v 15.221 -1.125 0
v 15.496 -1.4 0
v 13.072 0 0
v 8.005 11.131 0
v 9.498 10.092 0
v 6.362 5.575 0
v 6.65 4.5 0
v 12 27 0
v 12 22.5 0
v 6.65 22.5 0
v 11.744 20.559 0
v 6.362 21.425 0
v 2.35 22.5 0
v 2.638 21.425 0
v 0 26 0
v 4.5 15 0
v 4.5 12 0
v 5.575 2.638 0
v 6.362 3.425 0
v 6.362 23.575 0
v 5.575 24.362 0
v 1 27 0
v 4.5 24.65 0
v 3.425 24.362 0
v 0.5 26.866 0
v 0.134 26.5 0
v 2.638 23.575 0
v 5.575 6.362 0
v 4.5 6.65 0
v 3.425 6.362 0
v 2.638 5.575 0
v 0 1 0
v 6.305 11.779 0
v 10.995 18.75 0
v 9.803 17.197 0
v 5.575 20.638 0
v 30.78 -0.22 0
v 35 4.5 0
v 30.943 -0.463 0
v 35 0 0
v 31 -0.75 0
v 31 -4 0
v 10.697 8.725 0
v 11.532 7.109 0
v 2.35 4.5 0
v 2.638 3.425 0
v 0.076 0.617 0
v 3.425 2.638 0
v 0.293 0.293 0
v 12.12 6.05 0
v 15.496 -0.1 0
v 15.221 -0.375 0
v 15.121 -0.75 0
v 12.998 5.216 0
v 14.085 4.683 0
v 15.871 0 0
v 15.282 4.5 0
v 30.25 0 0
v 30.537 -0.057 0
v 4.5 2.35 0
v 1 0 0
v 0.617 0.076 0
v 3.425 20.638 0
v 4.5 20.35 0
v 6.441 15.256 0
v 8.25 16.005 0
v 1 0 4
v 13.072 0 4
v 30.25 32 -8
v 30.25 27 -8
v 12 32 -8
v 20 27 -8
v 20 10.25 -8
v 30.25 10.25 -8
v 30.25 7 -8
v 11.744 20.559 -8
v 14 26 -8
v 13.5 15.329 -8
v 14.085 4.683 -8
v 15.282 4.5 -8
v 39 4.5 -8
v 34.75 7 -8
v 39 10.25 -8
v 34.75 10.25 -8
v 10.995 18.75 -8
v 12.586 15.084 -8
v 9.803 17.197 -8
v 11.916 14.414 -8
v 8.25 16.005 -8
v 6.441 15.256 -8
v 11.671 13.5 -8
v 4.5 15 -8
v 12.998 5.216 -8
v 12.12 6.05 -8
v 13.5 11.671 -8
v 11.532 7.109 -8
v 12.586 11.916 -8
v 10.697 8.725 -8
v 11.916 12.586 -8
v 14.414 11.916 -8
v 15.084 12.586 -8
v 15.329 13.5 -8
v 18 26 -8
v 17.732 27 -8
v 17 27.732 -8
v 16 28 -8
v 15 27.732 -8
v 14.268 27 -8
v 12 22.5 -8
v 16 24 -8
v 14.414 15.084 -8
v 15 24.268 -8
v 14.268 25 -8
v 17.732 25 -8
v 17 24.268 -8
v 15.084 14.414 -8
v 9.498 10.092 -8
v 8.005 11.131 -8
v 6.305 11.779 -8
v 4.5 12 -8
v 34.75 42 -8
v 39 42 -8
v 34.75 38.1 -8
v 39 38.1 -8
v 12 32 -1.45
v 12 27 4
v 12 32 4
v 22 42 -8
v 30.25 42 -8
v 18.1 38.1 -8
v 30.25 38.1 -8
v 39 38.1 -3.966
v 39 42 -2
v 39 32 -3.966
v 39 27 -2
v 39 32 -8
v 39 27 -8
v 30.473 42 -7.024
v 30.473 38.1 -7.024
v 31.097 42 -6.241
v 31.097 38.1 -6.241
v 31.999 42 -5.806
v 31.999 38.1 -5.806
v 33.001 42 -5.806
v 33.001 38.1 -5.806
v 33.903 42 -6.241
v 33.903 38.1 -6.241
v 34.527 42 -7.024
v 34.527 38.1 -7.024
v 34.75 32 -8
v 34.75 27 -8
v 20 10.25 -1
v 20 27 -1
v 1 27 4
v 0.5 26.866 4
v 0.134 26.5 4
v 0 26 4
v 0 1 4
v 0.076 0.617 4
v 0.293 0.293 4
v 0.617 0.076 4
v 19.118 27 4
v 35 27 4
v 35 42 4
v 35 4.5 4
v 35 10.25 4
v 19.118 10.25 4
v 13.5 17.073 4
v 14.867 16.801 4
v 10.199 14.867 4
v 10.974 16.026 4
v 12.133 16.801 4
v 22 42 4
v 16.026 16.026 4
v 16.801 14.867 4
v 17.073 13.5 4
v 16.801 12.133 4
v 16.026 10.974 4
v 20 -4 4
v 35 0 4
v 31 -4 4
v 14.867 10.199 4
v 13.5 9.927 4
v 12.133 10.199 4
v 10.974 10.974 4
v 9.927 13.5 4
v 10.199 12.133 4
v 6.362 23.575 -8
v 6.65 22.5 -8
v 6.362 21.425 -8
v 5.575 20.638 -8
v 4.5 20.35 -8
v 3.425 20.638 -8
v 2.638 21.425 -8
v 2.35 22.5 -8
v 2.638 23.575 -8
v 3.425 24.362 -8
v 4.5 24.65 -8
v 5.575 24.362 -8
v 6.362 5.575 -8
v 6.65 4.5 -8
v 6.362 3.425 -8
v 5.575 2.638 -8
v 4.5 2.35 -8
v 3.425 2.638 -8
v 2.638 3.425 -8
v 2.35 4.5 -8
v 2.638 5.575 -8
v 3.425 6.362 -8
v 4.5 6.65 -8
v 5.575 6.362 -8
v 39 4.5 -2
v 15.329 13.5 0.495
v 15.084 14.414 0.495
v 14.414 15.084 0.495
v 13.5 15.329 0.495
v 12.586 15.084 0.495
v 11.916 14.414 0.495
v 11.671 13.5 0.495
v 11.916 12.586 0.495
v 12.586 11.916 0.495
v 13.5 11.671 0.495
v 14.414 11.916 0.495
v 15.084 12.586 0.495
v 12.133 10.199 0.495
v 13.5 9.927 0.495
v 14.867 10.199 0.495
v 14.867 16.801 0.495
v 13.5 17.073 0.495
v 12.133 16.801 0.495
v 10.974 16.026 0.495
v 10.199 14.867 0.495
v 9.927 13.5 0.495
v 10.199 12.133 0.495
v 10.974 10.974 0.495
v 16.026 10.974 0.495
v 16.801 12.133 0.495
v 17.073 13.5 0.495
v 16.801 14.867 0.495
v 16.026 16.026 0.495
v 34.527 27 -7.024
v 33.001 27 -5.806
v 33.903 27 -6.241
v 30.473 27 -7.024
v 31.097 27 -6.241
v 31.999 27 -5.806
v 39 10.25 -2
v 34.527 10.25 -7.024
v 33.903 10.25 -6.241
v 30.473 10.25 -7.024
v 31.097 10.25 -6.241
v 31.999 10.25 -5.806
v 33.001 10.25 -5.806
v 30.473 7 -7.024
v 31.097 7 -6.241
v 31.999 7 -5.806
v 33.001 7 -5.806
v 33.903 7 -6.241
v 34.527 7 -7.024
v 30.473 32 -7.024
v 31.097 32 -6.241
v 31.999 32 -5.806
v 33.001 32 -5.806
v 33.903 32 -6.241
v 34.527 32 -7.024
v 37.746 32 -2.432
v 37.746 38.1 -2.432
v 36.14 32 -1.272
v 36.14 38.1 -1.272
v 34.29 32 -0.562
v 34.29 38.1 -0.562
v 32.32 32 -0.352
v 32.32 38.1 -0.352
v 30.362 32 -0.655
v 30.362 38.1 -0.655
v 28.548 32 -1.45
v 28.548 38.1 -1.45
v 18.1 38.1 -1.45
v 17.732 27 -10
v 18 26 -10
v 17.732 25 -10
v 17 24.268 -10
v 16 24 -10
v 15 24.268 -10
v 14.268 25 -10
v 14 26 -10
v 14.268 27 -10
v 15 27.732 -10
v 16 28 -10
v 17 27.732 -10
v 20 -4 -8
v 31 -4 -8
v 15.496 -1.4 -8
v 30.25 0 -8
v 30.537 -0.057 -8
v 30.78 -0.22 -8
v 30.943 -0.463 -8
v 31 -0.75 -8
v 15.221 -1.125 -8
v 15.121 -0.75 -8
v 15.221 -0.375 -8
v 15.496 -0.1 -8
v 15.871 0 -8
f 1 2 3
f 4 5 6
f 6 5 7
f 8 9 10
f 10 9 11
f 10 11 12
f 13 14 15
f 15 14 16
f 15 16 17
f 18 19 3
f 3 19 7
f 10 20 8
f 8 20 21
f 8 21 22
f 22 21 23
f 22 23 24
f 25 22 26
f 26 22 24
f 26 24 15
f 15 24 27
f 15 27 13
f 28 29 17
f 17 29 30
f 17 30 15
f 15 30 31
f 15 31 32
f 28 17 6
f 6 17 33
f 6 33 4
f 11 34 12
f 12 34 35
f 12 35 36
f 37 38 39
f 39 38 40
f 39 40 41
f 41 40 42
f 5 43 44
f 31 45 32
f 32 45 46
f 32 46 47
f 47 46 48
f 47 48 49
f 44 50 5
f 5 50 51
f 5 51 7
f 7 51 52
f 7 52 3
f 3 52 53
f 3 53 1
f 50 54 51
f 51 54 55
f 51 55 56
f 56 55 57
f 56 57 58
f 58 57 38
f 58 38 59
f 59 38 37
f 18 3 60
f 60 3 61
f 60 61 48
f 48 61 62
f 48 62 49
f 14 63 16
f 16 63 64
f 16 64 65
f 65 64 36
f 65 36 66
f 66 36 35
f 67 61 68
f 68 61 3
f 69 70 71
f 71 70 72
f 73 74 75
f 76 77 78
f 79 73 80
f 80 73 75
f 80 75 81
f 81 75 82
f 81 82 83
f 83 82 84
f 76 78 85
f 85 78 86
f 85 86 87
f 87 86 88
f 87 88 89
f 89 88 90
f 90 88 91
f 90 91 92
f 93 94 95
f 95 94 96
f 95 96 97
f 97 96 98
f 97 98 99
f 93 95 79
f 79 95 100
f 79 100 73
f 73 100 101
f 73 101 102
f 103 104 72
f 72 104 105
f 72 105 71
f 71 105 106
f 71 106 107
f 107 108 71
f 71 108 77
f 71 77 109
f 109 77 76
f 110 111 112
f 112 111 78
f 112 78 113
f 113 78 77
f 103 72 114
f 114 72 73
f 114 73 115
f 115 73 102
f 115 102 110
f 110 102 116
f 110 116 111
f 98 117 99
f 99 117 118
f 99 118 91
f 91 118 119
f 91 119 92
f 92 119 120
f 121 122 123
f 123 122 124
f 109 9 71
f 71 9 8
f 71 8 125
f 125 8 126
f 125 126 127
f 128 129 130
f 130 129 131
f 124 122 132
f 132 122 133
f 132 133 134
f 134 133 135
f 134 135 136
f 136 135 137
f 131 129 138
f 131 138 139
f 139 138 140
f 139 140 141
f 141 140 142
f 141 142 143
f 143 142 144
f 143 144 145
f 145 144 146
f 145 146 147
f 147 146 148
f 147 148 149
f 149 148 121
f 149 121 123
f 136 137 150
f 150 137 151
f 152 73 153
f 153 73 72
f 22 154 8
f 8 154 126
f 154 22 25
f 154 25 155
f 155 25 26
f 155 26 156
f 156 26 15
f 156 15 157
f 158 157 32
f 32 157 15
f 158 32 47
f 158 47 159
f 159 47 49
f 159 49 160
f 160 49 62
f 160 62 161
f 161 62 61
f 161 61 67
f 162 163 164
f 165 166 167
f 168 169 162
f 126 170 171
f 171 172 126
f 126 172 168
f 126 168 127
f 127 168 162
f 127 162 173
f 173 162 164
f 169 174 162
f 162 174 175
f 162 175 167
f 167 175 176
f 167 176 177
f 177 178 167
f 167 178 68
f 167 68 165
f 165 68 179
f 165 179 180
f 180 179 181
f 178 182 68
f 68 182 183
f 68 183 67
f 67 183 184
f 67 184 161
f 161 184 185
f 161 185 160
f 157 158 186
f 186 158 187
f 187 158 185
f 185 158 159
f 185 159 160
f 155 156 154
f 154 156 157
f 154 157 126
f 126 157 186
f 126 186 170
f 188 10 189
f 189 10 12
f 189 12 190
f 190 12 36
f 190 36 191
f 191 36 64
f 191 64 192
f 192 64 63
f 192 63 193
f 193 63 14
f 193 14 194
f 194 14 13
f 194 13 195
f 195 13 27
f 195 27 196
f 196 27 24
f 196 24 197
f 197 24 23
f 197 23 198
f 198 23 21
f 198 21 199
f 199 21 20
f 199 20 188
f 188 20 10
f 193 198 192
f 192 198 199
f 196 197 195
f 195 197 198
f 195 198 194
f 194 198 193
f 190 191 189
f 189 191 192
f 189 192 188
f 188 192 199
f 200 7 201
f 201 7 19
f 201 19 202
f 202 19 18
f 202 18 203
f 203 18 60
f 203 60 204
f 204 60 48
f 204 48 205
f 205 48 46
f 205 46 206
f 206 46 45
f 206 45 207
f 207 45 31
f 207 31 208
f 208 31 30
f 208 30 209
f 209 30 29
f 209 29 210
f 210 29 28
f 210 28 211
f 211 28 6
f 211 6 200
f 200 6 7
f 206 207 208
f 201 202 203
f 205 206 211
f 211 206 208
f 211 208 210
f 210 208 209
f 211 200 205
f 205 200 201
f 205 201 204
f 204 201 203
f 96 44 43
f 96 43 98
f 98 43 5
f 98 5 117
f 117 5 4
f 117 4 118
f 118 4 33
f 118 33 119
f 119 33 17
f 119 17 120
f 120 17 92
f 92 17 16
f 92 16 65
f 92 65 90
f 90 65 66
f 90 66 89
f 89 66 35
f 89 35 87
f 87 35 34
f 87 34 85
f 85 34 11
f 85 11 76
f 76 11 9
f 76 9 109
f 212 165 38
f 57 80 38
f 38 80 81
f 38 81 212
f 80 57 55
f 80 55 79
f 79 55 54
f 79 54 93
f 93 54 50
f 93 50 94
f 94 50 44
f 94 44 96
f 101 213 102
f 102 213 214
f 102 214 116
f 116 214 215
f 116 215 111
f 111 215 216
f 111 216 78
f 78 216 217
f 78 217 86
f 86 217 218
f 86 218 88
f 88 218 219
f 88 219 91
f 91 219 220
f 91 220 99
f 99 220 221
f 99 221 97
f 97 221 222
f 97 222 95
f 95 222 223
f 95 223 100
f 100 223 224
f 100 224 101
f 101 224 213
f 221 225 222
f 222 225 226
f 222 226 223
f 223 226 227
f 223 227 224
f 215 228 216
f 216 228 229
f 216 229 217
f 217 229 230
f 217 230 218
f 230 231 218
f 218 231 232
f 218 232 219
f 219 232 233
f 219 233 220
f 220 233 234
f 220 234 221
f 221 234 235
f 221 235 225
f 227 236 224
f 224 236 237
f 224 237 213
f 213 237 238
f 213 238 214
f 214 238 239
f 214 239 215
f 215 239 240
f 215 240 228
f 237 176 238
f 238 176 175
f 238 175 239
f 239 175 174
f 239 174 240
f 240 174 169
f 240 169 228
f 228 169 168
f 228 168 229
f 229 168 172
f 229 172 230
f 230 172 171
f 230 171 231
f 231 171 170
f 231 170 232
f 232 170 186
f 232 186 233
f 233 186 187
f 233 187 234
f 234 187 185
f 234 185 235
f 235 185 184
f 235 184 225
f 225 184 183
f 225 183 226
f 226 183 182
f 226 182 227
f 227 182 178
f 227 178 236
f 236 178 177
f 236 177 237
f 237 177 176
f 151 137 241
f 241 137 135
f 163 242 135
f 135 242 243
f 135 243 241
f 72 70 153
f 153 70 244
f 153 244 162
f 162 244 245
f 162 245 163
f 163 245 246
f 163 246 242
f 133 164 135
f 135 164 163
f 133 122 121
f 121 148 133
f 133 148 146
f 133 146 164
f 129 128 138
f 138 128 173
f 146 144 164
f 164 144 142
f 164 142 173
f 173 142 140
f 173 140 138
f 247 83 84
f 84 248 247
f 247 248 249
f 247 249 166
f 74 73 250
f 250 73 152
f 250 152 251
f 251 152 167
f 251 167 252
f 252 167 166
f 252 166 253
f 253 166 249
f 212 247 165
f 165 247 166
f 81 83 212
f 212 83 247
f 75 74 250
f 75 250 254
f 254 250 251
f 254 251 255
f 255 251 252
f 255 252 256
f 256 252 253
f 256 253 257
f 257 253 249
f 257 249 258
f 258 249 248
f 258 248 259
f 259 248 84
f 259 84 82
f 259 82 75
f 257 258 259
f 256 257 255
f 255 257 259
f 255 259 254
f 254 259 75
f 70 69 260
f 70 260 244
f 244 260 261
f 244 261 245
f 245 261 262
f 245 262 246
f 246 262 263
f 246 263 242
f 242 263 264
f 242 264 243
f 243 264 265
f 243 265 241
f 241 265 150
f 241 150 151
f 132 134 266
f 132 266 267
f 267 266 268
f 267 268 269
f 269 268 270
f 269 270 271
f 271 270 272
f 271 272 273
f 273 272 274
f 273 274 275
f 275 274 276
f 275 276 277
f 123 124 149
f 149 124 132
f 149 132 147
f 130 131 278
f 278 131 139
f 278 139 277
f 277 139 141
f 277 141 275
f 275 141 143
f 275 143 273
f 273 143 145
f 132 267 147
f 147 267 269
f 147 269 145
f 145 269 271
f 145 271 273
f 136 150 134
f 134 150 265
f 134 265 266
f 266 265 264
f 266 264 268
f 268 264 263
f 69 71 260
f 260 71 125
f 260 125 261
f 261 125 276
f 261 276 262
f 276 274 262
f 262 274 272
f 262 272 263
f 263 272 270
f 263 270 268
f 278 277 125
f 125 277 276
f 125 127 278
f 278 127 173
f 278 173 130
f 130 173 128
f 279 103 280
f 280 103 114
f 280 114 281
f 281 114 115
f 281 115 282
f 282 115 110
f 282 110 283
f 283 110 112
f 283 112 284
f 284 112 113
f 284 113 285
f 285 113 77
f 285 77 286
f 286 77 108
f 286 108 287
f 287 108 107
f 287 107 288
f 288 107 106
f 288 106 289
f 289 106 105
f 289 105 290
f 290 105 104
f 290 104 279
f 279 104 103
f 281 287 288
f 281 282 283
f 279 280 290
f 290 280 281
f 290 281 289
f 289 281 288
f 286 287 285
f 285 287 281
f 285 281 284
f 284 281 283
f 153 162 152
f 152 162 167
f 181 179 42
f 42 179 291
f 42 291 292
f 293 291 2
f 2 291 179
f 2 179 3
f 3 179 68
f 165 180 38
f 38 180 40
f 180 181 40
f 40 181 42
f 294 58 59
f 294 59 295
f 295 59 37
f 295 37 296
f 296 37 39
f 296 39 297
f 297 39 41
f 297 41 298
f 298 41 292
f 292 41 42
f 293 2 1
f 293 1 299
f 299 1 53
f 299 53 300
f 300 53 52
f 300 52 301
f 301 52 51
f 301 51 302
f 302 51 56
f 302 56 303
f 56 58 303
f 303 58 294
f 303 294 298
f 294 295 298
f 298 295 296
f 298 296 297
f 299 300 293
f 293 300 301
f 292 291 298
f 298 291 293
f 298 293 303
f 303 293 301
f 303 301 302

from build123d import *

# Parameters (mm, degrees)
BOSS_EXTRUDE1_DEPTH                            = 4
SKETCH3_R                                      = 2.15
BOSS_EXTRUDE2_DEPTH                            = 8
BOSS_EXTRUDE3_START                            = -8
BOSS_EXTRUDE3_DEPTH                            = 8
CBORE_FOR_6_SOCKET_HEAD_CAP_SCREW1_D           = 3.6576
CBORE_FOR_6_SOCKET_HEAD_CAP_SCREW1_CBORE_D     = 7.14502
CBORE_FOR_6_SOCKET_HEAD_CAP_SCREW1_CBORE_DEPTH = 3.5052
BOSS_EXTRUDE5_DEPTH                            = 15
BOSS_EXTRUDE6_DEPTH                            = 5.75
CUT_EXTRUDE1_DEPTH                             = 49.104053883
CUT_EXTRUDE1_DEPTH_BACK                        = 20
SKETCH11_5_R                                   = 2.25
CUT_EXTRUDE2_DEPTH                             = 6.1
CHAMFER2_SIZE                                  = 10
SKETCH18_R                                     = 2
BOSS_EXTRUDE10_DEPTH                           = 2
CHAMFER3_SIZE                                  = 5
CHAMFER3_SIZE2                                 = 0.881634904
BOSS_EXTRUDE7_DEPTH                            = 4
BOSS_EXTRUDE9_DEPTH                            = 8


with BuildPart() as part:
    # Sketch2 → Boss-Extrude1 (new body)
    with BuildSketch(Plane.XY):
        with BuildLine():
            Line((1, 0), (20, 0))
            Line((20, 0), (20, 27))
            Line((20, 27), (1, 27))
            ThreePointArc((1, 27), (0.292893219, 26.707106781), (0, 26))
            Line((0, 26), (0, 1))
            ThreePointArc((0, 1), (0.292893219, 0.292893219), (1, 0))
        make_face()
    extrude(amount=BOSS_EXTRUDE1_DEPTH)

    # Sketch3 → Boss-Extrude2 (add)
    with BuildSketch(Plane.XY):
        with Locations((4.5, 22.5)):
            Circle(SKETCH3_R)
        with Locations((4.5, 4.5)):
            Circle(SKETCH3_R)
    extrude(amount=-BOSS_EXTRUDE2_DEPTH)

    # Sketch3<3> → Boss-Extrude3 (add)
    with BuildSketch(Plane.XY.offset(BOSS_EXTRUDE3_START)):
        with BuildLine():
            Line((4.5, 15), (4.5, 12))
            ThreePointArc((4.5, 12), (8.782801805, 10.656915518), (11.531693039, 7.108695652))
            ThreePointArc((11.531693039, 7.108695652), (12.997768364, 5.216311724), (15.281929326, 4.5))
            Line((15.281929326, 4.5), (20, 4.5))
            Line((20, 4.5), (20, 27))
            Line((20, 27), (12, 27))
            Line((12, 27), (12, 22.5))
            ThreePointArc((12, 22.5), (9.803300859, 17.196699141), (4.5, 15))
        make_face()
    extrude(amount=BOSS_EXTRUDE3_DEPTH)

    # CBORE for #6 Socket Head Cap Screw1 (through all)
    with Locations(Plane.XY.offset(4)):
        with Locations((13.5, 13.5)):
            CounterBoreHole(CBORE_FOR_6_SOCKET_HEAD_CAP_SCREW1_D / 2, CBORE_FOR_6_SOCKET_HEAD_CAP_SCREW1_CBORE_D / 2, CBORE_FOR_6_SOCKET_HEAD_CAP_SCREW1_CBORE_DEPTH)

    # Sketch11 → Boss-Extrude5 (add)
    with BuildSketch(Plane(origin=(0, 27, 0), x_dir=(1, 0, 0), z_dir=(0, 1, 0))):
        Polygon((12, 8), (12, -4), (35, -4), (39, 2), (39, 8), align=None)
    extrude(amount=BOSS_EXTRUDE5_DEPTH)

    # Sketch13 → Boss-Extrude6 (add)
    with BuildSketch(Plane(origin=(0, 10.25, 0), x_dir=(-1, 0, 0), z_dir=(0, -1, 0))):
        Polygon((-20, -4), (-20, 8), (-39, 8), (-39, 2), (-35, -4), align=None)
    extrude(amount=BOSS_EXTRUDE6_DEPTH)

    # Sketch11<5> → Cut-Extrude1 (cut, two sides: drawn at the far end of the back side and taken through both)
    with BuildSketch(Plane(origin=(0, 27, 0), x_dir=(1, 0, 0), z_dir=(0, 1, 0)).offset(-CUT_EXTRUDE1_DEPTH_BACK)):
        with Locations((32.5, 8)):
            Circle(SKETCH11_5_R)
    extrude(amount=CUT_EXTRUDE1_DEPTH + CUT_EXTRUDE1_DEPTH_BACK, mode=Mode.SUBTRACT)

    # Sketch14 → Cut-Extrude2 (cut)
    with BuildSketch(Plane(origin=(0, 32, 0), x_dir=(-1, 0, 0), z_dir=(0, -1, 0))):
        with BuildLine():
            Line((-29.85, 14.55), (-29.85, 1.45))
            Line((-29.85, 1.45), (-28.547785431, 1.45))
            ThreePointArc((-28.547785431, 1.45), (-25.8382832, 4.239145141), (-24.85, 8))
            ThreePointArc((-24.85, 8), (-25.8382832, 11.760854859), (-28.547785431, 14.55))
            Line((-28.547785431, 14.55), (-29.85, 14.55))
        make_face()
        with BuildLine():
            Line((-28.547785431, 1.45), (-29.85, 1.45))
            Line((-29.85, 1.45), (-29.85, 14.55))
            Line((-29.85, 14.55), (-28.547785431, 14.55))
            ThreePointArc((-28.547785431, 14.55), (-40.15, 8), (-28.547785431, 1.45))
        make_face()
        with BuildLine():
            ThreePointArc((-24.85, 8), (-25.8382832, 4.239145141), (-28.547785431, 1.45))
            Line((-28.547785431, 1.45), (-24.85, 1.45))
            Line((-24.85, 1.45), (-24.85, 8))
        make_face()
        Polygon((-24.85, 8), (-24.85, 1.45), (-9.85, 1.45), (-9.85, 14.55), (-24.85, 14.55), align=None)
        with BuildLine():
            Line((-24.85, 14.55), (-28.547785431, 14.55))
            ThreePointArc((-28.547785431, 14.55), (-25.8382832, 11.760854859), (-24.85, 8))
            Line((-24.85, 8), (-24.85, 14.55))
        make_face()
    extrude(amount=-CUT_EXTRUDE2_DEPTH, mode=Mode.SUBTRACT)

    # Chamfer2
    chamfer2_edges = [part.edges().sort_by_distance(p)[0] for p in [
        (12, 42, -2),
    ]]
    chamfer(chamfer2_edges, length=CHAMFER2_SIZE)

    # Sketch18 → Boss-Extrude10 (add)
    with BuildSketch(Plane(origin=(0, 0, -8), x_dir=(-1, 0, 0), z_dir=(0, 0, -1))):
        with Locations(Location((-16, 26, 0), (0, 0, 180))):
            Circle(SKETCH18_R)
    extrude(amount=BOSS_EXTRUDE10_DEPTH)

    # Chamfer3
    chamfer3_edges = [part.edges().sort_by_distance(p)[0] for p in [
        (20, 18.625, 4),
    ]]
    chamfer3_side = [part.faces().sort_by_distance(p)[0] for p in [
        (20, 18.625, -2),
    ]]
    chamfer(chamfer3_edges, length=CHAMFER3_SIZE, length2=CHAMFER3_SIZE2, reference=chamfer3_side[0])

    # Sketch15 → Boss-Extrude7 (add)
    with BuildSketch(Plane.XY.offset(4)):
        Polygon((20, 4.5), (20, 0), (13.07179677, 0), (20, -4), (31, -4), (35, 0), (35, 4.5), align=None)
    extrude(amount=-BOSS_EXTRUDE7_DEPTH)

    # Sketch17 → Boss-Extrude9 (add)
    with BuildSketch(Plane(origin=(0, 0, 0), x_dir=(-1, 0, 0), z_dir=(0, 0, -1))):
        with BuildLine():
            Line((-30.25, 0), (-15.870834875, 0))
            ThreePointArc((-15.870834875, 0), (-15.146390506, -0.555885716), (-15.495834875, -1.399519053))
            Line((-15.495834875, -1.399519053), (-20, -4))
            Line((-20, -4), (-31, -4))
            Line((-31, -4), (-31, -0.75))
            ThreePointArc((-31, -0.75), (-30.780330086, -0.219669914), (-30.25, 0))
        make_face()
    extrude(amount=BOSS_EXTRUDE9_DEPTH)


solid = part.part
